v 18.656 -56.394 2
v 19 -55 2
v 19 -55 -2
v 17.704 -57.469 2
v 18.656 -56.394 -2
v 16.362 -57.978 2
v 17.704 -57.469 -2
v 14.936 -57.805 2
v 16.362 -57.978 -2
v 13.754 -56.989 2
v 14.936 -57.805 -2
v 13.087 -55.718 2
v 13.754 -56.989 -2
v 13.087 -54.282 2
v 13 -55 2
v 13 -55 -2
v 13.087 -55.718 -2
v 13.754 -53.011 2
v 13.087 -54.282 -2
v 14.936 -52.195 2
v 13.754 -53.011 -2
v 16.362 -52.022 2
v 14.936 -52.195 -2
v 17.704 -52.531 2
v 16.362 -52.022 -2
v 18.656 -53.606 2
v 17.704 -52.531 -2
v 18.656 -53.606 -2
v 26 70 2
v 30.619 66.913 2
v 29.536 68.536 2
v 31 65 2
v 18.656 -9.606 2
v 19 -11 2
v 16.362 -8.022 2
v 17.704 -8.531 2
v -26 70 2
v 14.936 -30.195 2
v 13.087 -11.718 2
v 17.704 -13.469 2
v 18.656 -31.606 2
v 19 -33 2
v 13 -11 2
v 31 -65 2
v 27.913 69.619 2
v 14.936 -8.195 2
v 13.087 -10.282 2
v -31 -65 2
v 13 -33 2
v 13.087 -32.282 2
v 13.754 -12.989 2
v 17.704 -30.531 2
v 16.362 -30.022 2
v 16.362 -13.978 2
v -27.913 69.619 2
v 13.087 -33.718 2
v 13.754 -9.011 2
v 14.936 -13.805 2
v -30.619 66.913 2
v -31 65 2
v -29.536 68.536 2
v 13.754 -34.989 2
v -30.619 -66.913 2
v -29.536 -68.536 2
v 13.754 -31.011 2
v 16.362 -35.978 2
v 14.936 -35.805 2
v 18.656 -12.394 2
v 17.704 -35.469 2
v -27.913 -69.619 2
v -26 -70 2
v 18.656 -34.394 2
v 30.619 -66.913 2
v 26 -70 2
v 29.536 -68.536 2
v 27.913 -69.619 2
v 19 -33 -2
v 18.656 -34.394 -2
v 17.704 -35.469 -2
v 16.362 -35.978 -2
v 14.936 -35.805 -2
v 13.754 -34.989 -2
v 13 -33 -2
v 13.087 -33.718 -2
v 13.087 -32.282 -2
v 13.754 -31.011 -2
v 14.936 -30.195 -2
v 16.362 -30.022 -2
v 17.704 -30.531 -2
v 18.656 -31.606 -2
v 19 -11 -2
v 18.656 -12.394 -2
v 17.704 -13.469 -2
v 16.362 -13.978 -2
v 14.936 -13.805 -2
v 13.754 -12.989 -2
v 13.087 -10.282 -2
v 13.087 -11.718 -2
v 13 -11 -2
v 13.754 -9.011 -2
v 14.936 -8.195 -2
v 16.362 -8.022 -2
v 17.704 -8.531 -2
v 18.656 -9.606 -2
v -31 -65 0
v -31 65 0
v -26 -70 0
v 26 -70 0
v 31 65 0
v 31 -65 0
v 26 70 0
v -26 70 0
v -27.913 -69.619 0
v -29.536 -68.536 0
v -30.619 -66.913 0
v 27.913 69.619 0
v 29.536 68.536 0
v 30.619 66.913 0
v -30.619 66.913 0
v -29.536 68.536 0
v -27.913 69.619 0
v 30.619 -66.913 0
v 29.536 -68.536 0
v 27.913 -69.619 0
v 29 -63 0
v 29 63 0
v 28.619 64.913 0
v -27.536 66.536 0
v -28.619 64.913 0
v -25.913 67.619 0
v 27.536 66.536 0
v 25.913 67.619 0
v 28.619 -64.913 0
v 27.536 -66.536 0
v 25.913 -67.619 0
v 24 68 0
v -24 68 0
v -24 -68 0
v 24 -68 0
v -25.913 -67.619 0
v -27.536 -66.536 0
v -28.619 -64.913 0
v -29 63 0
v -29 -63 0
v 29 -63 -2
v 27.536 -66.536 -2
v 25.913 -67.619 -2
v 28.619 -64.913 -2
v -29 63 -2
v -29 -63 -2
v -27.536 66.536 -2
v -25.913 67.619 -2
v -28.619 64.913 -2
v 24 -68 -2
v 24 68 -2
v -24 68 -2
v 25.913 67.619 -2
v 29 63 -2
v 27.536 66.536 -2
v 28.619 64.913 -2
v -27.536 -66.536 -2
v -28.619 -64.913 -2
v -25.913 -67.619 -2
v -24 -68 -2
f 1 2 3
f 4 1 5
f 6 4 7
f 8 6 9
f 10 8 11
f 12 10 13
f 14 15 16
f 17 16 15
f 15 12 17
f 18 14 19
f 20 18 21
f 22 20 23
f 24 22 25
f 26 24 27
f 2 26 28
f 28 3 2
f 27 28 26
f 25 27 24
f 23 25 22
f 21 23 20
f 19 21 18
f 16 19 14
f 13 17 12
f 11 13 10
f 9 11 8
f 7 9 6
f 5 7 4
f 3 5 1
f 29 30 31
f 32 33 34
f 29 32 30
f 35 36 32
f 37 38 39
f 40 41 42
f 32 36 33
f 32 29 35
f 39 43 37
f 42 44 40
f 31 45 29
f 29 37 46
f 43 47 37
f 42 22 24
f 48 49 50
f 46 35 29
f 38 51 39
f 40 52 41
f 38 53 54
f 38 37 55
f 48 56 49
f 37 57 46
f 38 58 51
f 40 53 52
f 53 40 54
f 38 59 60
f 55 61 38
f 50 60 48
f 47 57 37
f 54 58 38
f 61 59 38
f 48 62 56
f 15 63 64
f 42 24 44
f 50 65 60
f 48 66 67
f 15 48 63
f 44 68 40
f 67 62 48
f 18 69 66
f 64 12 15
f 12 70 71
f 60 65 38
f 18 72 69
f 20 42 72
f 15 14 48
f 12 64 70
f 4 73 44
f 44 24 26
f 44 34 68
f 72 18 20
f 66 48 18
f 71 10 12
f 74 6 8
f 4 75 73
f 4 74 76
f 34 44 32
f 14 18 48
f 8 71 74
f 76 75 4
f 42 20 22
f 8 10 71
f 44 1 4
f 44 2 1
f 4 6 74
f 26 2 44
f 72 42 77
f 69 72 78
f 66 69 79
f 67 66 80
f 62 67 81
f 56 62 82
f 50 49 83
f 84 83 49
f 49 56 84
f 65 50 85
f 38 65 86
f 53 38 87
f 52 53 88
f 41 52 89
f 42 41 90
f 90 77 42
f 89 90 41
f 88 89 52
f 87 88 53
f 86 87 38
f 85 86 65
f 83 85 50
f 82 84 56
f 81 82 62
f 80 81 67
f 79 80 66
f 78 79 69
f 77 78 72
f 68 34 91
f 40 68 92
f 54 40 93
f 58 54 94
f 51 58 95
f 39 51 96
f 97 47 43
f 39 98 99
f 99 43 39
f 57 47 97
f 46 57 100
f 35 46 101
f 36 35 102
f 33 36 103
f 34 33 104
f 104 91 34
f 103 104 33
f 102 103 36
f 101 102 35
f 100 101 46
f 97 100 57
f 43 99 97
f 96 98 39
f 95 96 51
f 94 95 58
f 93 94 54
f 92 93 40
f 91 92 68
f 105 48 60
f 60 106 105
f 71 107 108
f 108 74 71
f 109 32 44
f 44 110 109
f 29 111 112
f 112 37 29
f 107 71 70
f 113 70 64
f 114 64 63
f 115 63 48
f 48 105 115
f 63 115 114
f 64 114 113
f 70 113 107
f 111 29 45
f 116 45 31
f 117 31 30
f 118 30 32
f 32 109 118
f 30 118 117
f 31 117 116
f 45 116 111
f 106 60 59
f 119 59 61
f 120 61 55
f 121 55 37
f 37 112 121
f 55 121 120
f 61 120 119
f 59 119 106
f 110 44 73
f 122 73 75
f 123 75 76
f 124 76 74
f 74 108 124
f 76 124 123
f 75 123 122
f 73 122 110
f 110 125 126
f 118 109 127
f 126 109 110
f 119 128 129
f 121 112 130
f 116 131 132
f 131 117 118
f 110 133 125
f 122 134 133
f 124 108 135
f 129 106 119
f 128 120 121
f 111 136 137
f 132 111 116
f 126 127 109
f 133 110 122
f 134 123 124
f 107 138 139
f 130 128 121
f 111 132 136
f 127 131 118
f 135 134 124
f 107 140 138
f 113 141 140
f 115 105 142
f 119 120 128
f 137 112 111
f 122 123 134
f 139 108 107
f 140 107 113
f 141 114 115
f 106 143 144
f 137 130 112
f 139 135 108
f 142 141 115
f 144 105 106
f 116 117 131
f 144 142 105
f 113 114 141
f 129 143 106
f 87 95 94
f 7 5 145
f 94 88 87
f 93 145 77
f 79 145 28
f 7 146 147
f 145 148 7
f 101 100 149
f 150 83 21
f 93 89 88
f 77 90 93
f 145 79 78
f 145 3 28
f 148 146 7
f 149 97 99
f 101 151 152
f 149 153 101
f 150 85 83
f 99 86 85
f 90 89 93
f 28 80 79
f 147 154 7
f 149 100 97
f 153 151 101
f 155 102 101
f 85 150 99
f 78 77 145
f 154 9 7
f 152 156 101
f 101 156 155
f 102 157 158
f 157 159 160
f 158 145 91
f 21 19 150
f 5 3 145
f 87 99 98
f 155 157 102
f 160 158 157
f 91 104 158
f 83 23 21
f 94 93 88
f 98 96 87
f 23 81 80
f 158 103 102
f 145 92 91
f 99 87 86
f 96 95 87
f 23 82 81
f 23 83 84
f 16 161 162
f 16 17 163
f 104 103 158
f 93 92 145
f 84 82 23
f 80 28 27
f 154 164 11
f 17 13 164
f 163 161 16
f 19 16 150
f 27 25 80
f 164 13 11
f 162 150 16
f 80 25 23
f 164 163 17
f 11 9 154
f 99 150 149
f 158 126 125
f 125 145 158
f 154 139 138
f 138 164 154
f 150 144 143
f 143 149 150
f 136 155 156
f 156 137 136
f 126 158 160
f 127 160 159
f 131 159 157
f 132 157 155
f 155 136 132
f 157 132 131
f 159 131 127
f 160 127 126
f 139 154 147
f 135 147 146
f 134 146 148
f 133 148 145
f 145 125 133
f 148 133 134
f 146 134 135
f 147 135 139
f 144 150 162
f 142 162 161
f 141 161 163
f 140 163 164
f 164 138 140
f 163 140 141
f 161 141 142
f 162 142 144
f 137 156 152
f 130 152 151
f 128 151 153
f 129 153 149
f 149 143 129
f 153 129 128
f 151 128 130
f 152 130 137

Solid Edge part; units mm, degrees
sketch "Sketch1" plane through (0, 0, 0) normal (0, 0, 1) x (1, 0, 0)
  line L0 (-31, -70) -> (31, -70)
  line L1 (31, -70) -> (31, 70)
  line L2 (31, 70) -> (-31, 70)
  line L3 (-31, 70) -> (-31, -70)
  dimension "D1" = 140
  dimension "D2" = 62
extrude "Ajout_matière_1" add sketch "Sketch1" along normal blind 2
fillet "Congé_1" radius 5 4 edges at (-31, -70, 1) (31, -70, 1) (-31, 70, 1) (31, 70, 1)
sketch "Sketch2" plane through (0, 0, 0) normal (0, 0, -1) x (-1, 0, 0)
  line L0 (-29, -68) -> (29, -68)
  line L1 (29, -68) -> (29, 68)
  line L2 (29, 68) -> (-29, 68)
  line L3 (-29, 68) -> (-29, -68)
  dimension "D1" = 2
  dimension "D2" = 2
  dimension "D3" = 2
  dimension "D4" = 2
extrude "Ajout_matière_2" add sketch "Sketch2" along normal blind 2
fillet "Congé_2" radius 5 4 edges at (29, 68, -1) (-29, 68, -1) (-29, -68, -1) (29, -68, -1)
hole "Perçage_1" at (16, -55, 2) direction (0, 0, -1) diameter 6 end up to next
hole "Hole1" at (16, -33, 2) direction (0, 0, -1) diameter 6 end up to next
hole "Hole2" at (16, -11, 2) direction (0, 0, -1) diameter 6 end up to next
properties material "Acier S235"
